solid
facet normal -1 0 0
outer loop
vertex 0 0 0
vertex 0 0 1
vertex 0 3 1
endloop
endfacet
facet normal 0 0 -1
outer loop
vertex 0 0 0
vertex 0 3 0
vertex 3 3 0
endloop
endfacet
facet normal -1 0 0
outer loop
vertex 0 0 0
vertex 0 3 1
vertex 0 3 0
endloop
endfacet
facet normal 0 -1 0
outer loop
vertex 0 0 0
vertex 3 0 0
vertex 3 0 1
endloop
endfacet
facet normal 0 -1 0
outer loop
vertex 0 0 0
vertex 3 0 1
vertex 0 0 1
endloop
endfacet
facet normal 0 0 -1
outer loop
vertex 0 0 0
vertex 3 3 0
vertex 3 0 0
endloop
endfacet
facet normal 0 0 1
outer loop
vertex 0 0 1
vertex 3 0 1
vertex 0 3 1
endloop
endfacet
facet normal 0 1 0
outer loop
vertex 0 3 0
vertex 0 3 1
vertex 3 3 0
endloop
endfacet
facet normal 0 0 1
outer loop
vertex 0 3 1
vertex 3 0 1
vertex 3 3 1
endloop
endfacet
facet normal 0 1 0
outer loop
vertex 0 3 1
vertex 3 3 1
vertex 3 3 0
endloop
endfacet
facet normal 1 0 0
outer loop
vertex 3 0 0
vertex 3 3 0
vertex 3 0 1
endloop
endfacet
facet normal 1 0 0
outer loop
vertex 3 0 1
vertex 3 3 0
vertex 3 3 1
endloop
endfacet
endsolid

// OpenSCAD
/* Warning, this is a very basic generator with a lot of approximation 
input data : [VQFN, NCA, 3x3x1.00mm, 16, , C, C04-01103C]
generated by com.zoubworld.electronics.cad.model3d.Basic
Date : Sun Feb 15 10:50:49 CET 2026
*/

//body
color("black")
translate([0,0,0])
cube([3.0,3.0,1.0], center=false);
